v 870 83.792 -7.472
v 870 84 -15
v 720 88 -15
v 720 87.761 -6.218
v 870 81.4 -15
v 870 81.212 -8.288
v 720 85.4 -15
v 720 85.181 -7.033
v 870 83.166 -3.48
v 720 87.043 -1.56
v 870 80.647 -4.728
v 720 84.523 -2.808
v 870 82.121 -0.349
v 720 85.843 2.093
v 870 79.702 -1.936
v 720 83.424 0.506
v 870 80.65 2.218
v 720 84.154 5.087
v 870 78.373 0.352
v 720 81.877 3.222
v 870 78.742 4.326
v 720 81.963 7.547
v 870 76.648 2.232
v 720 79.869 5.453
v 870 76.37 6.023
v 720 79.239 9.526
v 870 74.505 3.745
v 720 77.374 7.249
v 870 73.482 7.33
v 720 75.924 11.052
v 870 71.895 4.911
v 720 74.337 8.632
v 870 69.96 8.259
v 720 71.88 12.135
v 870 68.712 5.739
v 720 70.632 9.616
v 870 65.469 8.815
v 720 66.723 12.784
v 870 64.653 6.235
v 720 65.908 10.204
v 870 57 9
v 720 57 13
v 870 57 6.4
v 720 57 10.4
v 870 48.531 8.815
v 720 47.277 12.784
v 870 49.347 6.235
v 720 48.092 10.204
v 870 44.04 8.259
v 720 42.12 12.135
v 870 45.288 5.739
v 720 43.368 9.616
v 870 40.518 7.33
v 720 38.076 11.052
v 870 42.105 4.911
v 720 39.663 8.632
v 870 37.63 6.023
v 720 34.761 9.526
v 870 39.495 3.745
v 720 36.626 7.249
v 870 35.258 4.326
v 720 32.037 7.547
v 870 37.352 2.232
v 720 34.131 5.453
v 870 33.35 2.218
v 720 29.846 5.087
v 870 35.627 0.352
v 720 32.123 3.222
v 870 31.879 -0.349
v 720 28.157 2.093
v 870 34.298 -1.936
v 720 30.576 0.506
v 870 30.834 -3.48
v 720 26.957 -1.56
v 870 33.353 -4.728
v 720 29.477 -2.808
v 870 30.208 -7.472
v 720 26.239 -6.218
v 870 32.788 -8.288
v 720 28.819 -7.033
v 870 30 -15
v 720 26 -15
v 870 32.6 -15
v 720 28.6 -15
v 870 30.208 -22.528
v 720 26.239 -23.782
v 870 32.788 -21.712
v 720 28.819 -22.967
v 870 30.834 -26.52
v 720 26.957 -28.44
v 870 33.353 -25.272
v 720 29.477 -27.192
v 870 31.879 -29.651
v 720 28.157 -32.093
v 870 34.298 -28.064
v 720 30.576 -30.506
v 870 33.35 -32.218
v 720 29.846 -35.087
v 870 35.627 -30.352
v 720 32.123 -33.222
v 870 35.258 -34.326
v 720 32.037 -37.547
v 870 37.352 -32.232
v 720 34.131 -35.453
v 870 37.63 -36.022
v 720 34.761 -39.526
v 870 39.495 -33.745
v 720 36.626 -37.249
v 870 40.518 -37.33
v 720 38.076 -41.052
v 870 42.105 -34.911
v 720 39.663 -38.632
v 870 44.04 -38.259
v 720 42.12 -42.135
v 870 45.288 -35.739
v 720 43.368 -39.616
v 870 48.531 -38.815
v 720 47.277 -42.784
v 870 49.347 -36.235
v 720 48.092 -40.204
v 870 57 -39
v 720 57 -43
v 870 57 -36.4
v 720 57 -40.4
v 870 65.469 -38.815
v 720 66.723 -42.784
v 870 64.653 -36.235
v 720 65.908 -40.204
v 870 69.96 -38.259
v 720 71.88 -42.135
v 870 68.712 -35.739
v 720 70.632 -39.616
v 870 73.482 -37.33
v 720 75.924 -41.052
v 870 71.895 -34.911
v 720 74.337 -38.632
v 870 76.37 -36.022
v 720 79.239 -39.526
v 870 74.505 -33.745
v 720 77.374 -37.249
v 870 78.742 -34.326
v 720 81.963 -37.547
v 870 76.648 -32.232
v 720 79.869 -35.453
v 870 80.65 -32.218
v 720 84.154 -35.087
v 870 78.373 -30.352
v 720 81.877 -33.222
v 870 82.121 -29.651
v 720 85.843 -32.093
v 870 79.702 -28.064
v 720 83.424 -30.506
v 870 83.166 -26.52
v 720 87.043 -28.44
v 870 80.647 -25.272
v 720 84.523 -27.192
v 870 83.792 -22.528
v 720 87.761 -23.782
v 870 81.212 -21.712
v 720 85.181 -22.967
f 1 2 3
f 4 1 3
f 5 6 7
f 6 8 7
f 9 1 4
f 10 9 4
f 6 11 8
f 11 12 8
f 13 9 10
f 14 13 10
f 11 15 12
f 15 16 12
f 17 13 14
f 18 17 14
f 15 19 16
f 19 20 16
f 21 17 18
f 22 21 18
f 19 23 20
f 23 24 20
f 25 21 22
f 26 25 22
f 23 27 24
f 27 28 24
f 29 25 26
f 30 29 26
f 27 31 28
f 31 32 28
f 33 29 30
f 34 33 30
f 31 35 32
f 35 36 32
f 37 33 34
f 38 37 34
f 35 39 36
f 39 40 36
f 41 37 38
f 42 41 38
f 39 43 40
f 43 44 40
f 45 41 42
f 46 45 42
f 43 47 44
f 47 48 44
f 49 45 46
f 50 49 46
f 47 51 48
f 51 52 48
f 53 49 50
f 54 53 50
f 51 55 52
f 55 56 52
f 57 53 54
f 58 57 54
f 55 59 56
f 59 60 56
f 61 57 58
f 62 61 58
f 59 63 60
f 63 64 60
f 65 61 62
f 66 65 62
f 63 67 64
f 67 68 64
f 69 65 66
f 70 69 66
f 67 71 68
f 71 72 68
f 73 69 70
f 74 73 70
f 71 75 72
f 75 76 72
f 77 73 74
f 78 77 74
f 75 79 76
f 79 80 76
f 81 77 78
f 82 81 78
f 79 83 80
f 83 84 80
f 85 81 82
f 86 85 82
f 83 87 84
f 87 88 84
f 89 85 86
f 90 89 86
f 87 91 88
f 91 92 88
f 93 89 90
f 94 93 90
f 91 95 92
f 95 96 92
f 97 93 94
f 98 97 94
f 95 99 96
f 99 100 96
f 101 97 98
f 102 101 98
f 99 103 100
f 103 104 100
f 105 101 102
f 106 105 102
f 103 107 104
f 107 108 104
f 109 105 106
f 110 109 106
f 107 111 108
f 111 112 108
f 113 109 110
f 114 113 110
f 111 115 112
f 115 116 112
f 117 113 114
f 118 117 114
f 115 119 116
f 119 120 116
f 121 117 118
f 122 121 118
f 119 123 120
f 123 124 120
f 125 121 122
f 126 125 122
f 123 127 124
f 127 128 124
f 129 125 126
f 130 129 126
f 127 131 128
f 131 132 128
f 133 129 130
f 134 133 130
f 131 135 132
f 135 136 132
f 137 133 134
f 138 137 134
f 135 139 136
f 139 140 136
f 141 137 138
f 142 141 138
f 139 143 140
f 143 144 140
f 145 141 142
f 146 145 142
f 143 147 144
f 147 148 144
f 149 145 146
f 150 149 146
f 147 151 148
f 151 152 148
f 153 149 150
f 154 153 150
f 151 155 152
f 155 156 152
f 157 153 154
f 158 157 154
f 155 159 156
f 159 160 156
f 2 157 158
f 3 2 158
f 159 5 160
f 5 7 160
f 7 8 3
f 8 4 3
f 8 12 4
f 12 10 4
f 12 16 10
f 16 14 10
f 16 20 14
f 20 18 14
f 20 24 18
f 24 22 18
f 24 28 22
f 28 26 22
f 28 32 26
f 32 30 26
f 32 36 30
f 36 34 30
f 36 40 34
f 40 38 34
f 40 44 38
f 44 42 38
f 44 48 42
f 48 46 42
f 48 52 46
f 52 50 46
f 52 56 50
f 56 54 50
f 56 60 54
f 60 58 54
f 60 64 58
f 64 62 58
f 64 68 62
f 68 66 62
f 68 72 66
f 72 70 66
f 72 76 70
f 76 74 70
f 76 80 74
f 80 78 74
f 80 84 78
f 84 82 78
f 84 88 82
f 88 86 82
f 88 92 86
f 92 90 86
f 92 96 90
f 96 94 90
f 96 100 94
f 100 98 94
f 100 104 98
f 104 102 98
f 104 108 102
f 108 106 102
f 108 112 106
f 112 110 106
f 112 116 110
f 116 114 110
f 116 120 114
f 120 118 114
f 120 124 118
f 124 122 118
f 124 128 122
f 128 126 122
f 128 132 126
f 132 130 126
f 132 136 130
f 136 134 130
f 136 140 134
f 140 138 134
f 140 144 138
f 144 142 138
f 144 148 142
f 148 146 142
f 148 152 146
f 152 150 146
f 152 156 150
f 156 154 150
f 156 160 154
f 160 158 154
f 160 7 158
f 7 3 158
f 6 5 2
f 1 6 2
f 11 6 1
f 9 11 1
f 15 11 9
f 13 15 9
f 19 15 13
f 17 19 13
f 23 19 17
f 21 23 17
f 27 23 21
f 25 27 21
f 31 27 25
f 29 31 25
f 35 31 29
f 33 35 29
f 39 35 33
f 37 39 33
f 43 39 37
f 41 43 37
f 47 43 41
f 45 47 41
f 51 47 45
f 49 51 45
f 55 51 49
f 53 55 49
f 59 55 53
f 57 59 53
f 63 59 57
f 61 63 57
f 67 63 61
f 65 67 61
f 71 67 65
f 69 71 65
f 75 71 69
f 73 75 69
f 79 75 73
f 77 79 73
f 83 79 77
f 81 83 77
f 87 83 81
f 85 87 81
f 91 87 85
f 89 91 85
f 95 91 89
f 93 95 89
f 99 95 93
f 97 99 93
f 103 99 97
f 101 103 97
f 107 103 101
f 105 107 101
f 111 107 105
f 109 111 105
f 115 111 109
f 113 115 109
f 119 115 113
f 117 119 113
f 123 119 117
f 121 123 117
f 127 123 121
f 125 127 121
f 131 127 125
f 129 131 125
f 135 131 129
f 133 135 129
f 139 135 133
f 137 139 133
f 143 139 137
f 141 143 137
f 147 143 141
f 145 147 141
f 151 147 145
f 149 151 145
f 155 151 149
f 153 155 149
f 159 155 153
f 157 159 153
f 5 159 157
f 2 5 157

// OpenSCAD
polyhedron(points=[[720.0, 88.0, -15.0], [720.0, 87.760908, -6.217548], [720.0, 87.042817, -1.56007], [720.0, 85.842789, 2.092763], [720.0, 84.154088, 5.087214], [720.0, 81.9626, 7.546865], [720.0, 79.239416, 9.526273], [720.0, 75.92413, 11.051551], [720.0, 71.879923, 12.135447], [720.0, 66.723429, 12.784046], [720.0, 57.0, 13.0], [720.0, 47.276571, 12.784046], [720.0, 42.120077, 12.135447], [720.0, 38.07587, 11.051551], [720.0, 34.760584, 9.526273], [720.0, 32.0374, 7.546865], [720.0, 29.845912, 5.087214], [720.0, 28.157211, 2.092763], [720.0, 26.957183, -1.56007], [720.0, 26.239092, -6.217548], [720.0, 26.0, -15.0], [720.0, 26.239092, -23.782452], [720.0, 26.957183, -28.43993], [720.0, 28.157211, -32.092763], [720.0, 29.845912, -35.087214], [720.0, 32.0374, -37.546865], [720.0, 34.760584, -39.526273], [720.0, 38.07587, -41.051551], [720.0, 42.120077, -42.135447], [720.0, 47.276571, -42.784046], [720.0, 57.0, -43.0], [720.0, 66.723429, -42.784046], [720.0, 71.879923, -42.135447], [720.0, 75.92413, -41.051551], [720.0, 79.239416, -39.526273], [720.0, 81.9626, -37.546865], [720.0, 84.154088, -35.087214], [720.0, 85.842789, -32.092763], [720.0, 87.042817, -28.43993], [720.0, 87.760908, -23.782452], [720.0, 85.4, -15.0], [720.0, 85.180961, -7.033061], [720.0, 84.523097, -2.808063], [720.0, 83.423716, 0.505577], [720.0, 81.876648, 3.221973], [720.0, 79.868963, 5.453227], [720.0, 77.374174, 7.248833], [720.0, 74.336945, 8.632478], [720.0, 70.631929, 9.615727], [720.0, 65.907916, 10.204099], [720.0, 57.0, 10.4], [720.0, 48.092084, 10.204099], [720.0, 43.368071, 9.615727], [720.0, 39.663055, 8.632478], [720.0, 36.625826, 7.248833], [720.0, 34.131037, 5.453227], [720.0, 32.123352, 3.221973], [720.0, 30.576284, 0.505577], [720.0, 29.476903, -2.808063], [720.0, 28.819039, -7.033061], [720.0, 28.6, -15.0], [720.0, 28.819039, -22.966939], [720.0, 29.476903, -27.191937], [720.0, 30.576284, -30.505577], [720.0, 32.123352, -33.221973], [720.0, 34.131037, -35.453227], [720.0, 36.625826, -37.248833], [720.0, 39.663055, -38.632478], [720.0, 43.368071, -39.615727], [720.0, 48.092084, -40.204099], [720.0, 57.0, -40.4], [720.0, 65.907916, -40.204099], [720.0, 70.631929, -39.615727], [720.0, 74.336945, -38.632478], [720.0, 77.374174, -37.248833], [720.0, 79.868963, -35.453227], [720.0, 81.876648, -33.221973], [720.0, 83.423716, -30.505577], [720.0, 84.523097, -27.191937], [720.0, 85.180961, -22.966939], [870.0, 84.0, -15.0], [870.0, 83.791758, -7.472184], [870.0, 83.166324, -3.48006], [870.0, 82.121138, -0.349061], [870.0, 80.650335, 2.217612], [870.0, 78.741619, 4.325884], [870.0, 76.369814, 6.02252], [870.0, 73.482307, 7.329901], [870.0, 69.959933, 8.258955], [870.0, 65.468793, 8.814896], [870.0, 57.0, 9.0], [870.0, 48.531207, 8.814896], [870.0, 44.040067, 8.258955], [870.0, 40.517693, 7.329901], [870.0, 37.630186, 6.02252], [870.0, 35.258381, 4.325884], [870.0, 33.349665, 2.217612], [870.0, 31.878862, -0.349061], [870.0, 30.833676, -3.48006], [870.0, 30.208242, -7.472184], [870.0, 30.0, -15.0], [870.0, 30.208242, -22.527816], [870.0, 30.833676, -26.51994], [870.0, 31.878862, -29.650939], [870.0, 33.349665, -32.217612], [870.0, 35.258381, -34.325884], [870.0, 37.630186, -36.02252], [870.0, 40.517693, -37.329901], [870.0, 44.040067, -38.258955], [870.0, 48.531207, -38.814896], [870.0, 57.0, -39.0], [870.0, 65.468793, -38.814896], [870.0, 69.959933, -38.258955], [870.0, 73.482307, -37.329901], [870.0, 76.369814, -36.02252], [870.0, 78.741619, -34.325884], [870.0, 80.650335, -32.217612], [870.0, 82.121138, -29.650939], [870.0, 83.166324, -26.51994], [870.0, 83.791758, -22.527816], [870.0, 81.4, -15.0], [870.0, 81.211811, -8.287697], [870.0, 80.646604, -4.728053], [870.0, 79.702066, -1.936246], [870.0, 78.372895, 0.352371], [870.0, 76.647982, 2.232247], [870.0, 74.504572, 3.74508], [870.0, 71.895122, 4.910828], [870.0, 68.711939, 5.739235], [870.0, 64.65328, 6.234949], [870.0, 57.0, 6.4], [870.0, 49.34672, 6.234949], [870.0, 45.288061, 5.739235], [870.0, 42.104878, 4.910828], [870.0, 39.495428, 3.74508], [870.0, 37.352018, 2.232247], [870.0, 35.627105, 0.352371], [870.0, 34.297934, -1.936246], [870.0, 33.353396, -4.728053], [870.0, 32.788189, -8.287697], [870.0, 32.6, -15.0], [870.0, 32.788189, -21.712303], [870.0, 33.353396, -25.271947], [870.0, 34.297934, -28.063754], [870.0, 35.627105, -30.352371], [870.0, 37.352018, -32.232247], [870.0, 39.495428, -33.74508], [870.0, 42.104878, -34.910828], [870.0, 45.288061, -35.739235], [870.0, 49.34672, -36.234949], [870.0, 57.0, -36.4], [870.0, 64.65328, -36.234949], [870.0, 68.711939, -35.739235], [870.0, 71.895122, -34.910828], [870.0, 74.504572, -33.74508], [870.0, 76.647982, -32.232247], [870.0, 78.372895, -30.352371], [870.0, 79.702066, -28.063754], [870.0, 80.646604, -25.271947], [870.0, 81.211811, -21.712303]], faces=[[0, 80, 81], [0, 81, 1], [40, 121, 120], [40, 41, 121], [1, 81, 82], [1, 82, 2], [41, 122, 121], [41, 42, 122], [2, 82, 83], [2, 83, 3], [42, 123, 122], [42, 43, 123], [3, 83, 84], [3, 84, 4], [43, 124, 123], [43, 44, 124], [4, 84, 85], [4, 85, 5], [44, 125, 124], [44, 45, 125], [5, 85, 86], [5, 86, 6], [45, 126, 125], [45, 46, 126], [6, 86, 87], [6, 87, 7], [46, 127, 126], [46, 47, 127], [7, 87, 88], [7, 88, 8], [47, 128, 127], [47, 48, 128], [8, 88, 89], [8, 89, 9], [48, 129, 128], [48, 49, 129], [9, 89, 90], [9, 90, 10], [49, 130, 129], [49, 50, 130], [10, 90, 91], [10, 91, 11], [50, 131, 130], [50, 51, 131], [11, 91, 92], [11, 92, 12], [51, 132, 131], [51, 52, 132], [12, 92, 93], [12, 93, 13], [52, 133, 132], [52, 53, 133], [13, 93, 94], [13, 94, 14], [53, 134, 133], [53, 54, 134], [14, 94, 95], [14, 95, 15], [54, 135, 134], [54, 55, 135], [15, 95, 96], [15, 96, 16], [55, 136, 135], [55, 56, 136], [16, 96, 97], [16, 97, 17], [56, 137, 136], [56, 57, 137], [17, 97, 98], [17, 98, 18], [57, 138, 137], [57, 58, 138], [18, 98, 99], [18, 99, 19], [58, 139, 138], [58, 59, 139], [19, 99, 100], [19, 100, 20], [59, 140, 139], [59, 60, 140], [20, 100, 101], [20, 101, 21], [60, 141, 140], [60, 61, 141], [21, 101, 102], [21, 102, 22], [61, 142, 141], [61, 62, 142], [22, 102, 103], [22, 103, 23], [62, 143, 142], [62, 63, 143], [23, 103, 104], [23, 104, 24], [63, 144, 143], [63, 64, 144], [24, 104, 105], [24, 105, 25], [64, 145, 144], [64, 65, 145], [25, 105, 106], [25, 106, 26], [65, 146, 145], [65, 66, 146], [26, 106, 107], [26, 107, 27], [66, 147, 146], [66, 67, 147], [27, 107, 108], [27, 108, 28], [67, 148, 147], [67, 68, 148], [28, 108, 109], [28, 109, 29], [68, 149, 148], [68, 69, 149], [29, 109, 110], [29, 110, 30], [69, 150, 149], [69, 70, 150], [30, 110, 111], [30, 111, 31], [70, 151, 150], [70, 71, 151], [31, 111, 112], [31, 112, 32], [71, 152, 151], [71, 72, 152], [32, 112, 113], [32, 113, 33], [72, 153, 152], [72, 73, 153], [33, 113, 114], [33, 114, 34], [73, 154, 153], [73, 74, 154], [34, 114, 115], [34, 115, 35], [74, 155, 154], [74, 75, 155], [35, 115, 116], [35, 116, 36], [75, 156, 155], [75, 76, 156], [36, 116, 117], [36, 117, 37], [76, 157, 156], [76, 77, 157], [37, 117, 118], [37, 118, 38], [77, 158, 157], [77, 78, 158], [38, 118, 119], [38, 119, 39], [78, 159, 158], [78, 79, 159], [39, 119, 80], [39, 80, 0], [79, 120, 159], [79, 40, 120], [0, 41, 40], [0, 1, 41], [1, 42, 41], [1, 2, 42], [2, 43, 42], [2, 3, 43], [3, 44, 43], [3, 4, 44], [4, 45, 44], [4, 5, 45], [5, 46, 45], [5, 6, 46], [6, 47, 46], [6, 7, 47], [7, 48, 47], [7, 8, 48], [8, 49, 48], [8, 9, 49], [9, 50, 49], [9, 10, 50], [10, 51, 50], [10, 11, 51], [11, 52, 51], [11, 12, 52], [12, 53, 52], [12, 13, 53], [13, 54, 53], [13, 14, 54], [14, 55, 54], [14, 15, 55], [15, 56, 55], [15, 16, 56], [16, 57, 56], [16, 17, 57], [17, 58, 57], [17, 18, 58], [18, 59, 58], [18, 19, 59], [19, 60, 59], [19, 20, 60], [20, 61, 60], [20, 21, 61], [21, 62, 61], [21, 22, 62], [22, 63, 62], [22, 23, 63], [23, 64, 63], [23, 24, 64], [24, 65, 64], [24, 25, 65], [25, 66, 65], [25, 26, 66], [26, 67, 66], [26, 27, 67], [27, 68, 67], [27, 28, 68], [28, 69, 68], [28, 29, 69], [29, 70, 69], [29, 30, 70], [30, 71, 70], [30, 31, 71], [31, 72, 71], [31, 32, 72], [32, 73, 72], [32, 33, 73], [33, 74, 73], [33, 34, 74], [34, 75, 74], [34, 35, 75], [35, 76, 75], [35, 36, 76], [36, 77, 76], [36, 37, 77], [37, 78, 77], [37, 38, 78], [38, 79, 78], [38, 39, 79], [39, 40, 79], [39, 0, 40], [80, 120, 121], [80, 121, 81], [81, 121, 122], [81, 122, 82], [82, 122, 123], [82, 123, 83], [83, 123, 124], [83, 124, 84], [84, 124, 125], [84, 125, 85], [85, 125, 126], [85, 126, 86], [86, 126, 127], [86, 127, 87], [87, 127, 128], [87, 128, 88], [88, 128, 129], [88, 129, 89], [89, 129, 130], [89, 130, 90], [90, 130, 131], [90, 131, 91], [91, 131, 132], [91, 132, 92], [92, 132, 133], [92, 133, 93], [93, 133, 134], [93, 134, 94], [94, 134, 135], [94, 135, 95], [95, 135, 136], [95, 136, 96], [96, 136, 137], [96, 137, 97], [97, 137, 138], [97, 138, 98], [98, 138, 139], [98, 139, 99], [99, 139, 140], [99, 140, 100], [100, 140, 141], [100, 141, 101], [101, 141, 142], [101, 142, 102], [102, 142, 143], [102, 143, 103], [103, 143, 144], [103, 144, 104], [104, 144, 145], [104, 145, 105], [105, 145, 146], [105, 146, 106], [106, 146, 147], [106, 147, 107], [107, 147, 148], [107, 148, 108], [108, 148, 149], [108, 149, 109], [109, 149, 150], [109, 150, 110], [110, 150, 151], [110, 151, 111], [111, 151, 152], [111, 152, 112], [112, 152, 153], [112, 153, 113], [113, 153, 154], [113, 154, 114], [114, 154, 155], [114, 155, 115], [115, 155, 156], [115, 156, 116], [116, 156, 157], [116, 157, 117], [117, 157, 158], [117, 158, 118], [118, 158, 159], [118, 159, 119], [119, 159, 120], [119, 120, 80]], convexity=30);
